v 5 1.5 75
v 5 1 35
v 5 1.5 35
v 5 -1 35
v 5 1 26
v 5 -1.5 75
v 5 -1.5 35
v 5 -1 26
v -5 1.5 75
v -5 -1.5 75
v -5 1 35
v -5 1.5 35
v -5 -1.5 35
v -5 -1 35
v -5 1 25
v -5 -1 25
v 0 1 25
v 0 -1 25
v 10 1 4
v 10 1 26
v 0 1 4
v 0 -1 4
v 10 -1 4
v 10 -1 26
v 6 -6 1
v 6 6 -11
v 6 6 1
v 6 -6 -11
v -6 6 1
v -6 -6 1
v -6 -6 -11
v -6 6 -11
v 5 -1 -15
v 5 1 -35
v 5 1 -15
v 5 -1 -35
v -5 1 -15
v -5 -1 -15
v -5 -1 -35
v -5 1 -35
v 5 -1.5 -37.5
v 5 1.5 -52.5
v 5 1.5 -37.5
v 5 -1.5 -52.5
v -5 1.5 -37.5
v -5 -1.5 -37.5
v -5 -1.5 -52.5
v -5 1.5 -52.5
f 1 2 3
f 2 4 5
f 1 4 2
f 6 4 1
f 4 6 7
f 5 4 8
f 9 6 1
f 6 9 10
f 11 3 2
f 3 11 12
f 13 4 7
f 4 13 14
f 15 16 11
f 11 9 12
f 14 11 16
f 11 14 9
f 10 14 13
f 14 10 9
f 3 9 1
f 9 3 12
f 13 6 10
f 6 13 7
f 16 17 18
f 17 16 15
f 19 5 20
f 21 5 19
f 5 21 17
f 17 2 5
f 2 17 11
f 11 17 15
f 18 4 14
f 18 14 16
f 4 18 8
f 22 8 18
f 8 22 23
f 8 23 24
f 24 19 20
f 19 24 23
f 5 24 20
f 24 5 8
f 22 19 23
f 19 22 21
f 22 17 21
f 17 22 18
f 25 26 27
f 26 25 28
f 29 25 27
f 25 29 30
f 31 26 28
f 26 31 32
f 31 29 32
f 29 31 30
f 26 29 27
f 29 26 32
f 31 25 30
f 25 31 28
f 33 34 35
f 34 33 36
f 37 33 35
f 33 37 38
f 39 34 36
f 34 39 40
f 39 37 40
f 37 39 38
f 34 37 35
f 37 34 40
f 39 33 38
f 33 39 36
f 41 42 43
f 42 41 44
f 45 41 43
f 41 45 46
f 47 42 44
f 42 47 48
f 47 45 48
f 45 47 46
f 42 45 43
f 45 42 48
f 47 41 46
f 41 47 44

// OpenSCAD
// Define dimensions for each component
module elongated_block() {
    cube([10, 3, 40], center = true); // Increased thickness
}

module rectangular_block_4() {
    cube([10, 2, 20], center = true);
}

module rectangular_block_3() {
    cube([10, 2, 22], center = true); // Reduced elongation
}

module cube_1() {
    cube([12, 12, 12], center = true); // Increased size
}

module rectangular_block_2() {
    cube([10, 2, 20], center = true);
}

module rectangular_block_1() {
    cube([10, 3, 15], center = true); // Increased thickness
}

// Assemble the model based on the positional relationship
module flexible_coupling() {
    // Layer 1: elongated_block
    translate([0, 0, 55]) elongated_block(); // Lowered position
    
    // Layer 2: rectangular_block_4
    translate([0, 0, 35]) rectangular_block_4(); // Increased distance from rectangular_block_3
    
    // Layer 3: rectangular_block_3
    translate([5, 0, 15]) rectangular_block_3(); // Adjusted position to the right
    
    // Layer 4: cube_1
    translate([0, 0, -5]) cube_1(); // Lowered position
    
    // Layer 5: rectangular_block_2
    rotate([0, 0, 0]) translate([0, 0, -25]) rectangular_block_2(); // Restored original orientation
    
    // Layer 6: rectangular_block_1
    translate([0, 0, -45]) rectangular_block_1(); // Adjusted position downward
}

// Render the model
flexible_coupling();
